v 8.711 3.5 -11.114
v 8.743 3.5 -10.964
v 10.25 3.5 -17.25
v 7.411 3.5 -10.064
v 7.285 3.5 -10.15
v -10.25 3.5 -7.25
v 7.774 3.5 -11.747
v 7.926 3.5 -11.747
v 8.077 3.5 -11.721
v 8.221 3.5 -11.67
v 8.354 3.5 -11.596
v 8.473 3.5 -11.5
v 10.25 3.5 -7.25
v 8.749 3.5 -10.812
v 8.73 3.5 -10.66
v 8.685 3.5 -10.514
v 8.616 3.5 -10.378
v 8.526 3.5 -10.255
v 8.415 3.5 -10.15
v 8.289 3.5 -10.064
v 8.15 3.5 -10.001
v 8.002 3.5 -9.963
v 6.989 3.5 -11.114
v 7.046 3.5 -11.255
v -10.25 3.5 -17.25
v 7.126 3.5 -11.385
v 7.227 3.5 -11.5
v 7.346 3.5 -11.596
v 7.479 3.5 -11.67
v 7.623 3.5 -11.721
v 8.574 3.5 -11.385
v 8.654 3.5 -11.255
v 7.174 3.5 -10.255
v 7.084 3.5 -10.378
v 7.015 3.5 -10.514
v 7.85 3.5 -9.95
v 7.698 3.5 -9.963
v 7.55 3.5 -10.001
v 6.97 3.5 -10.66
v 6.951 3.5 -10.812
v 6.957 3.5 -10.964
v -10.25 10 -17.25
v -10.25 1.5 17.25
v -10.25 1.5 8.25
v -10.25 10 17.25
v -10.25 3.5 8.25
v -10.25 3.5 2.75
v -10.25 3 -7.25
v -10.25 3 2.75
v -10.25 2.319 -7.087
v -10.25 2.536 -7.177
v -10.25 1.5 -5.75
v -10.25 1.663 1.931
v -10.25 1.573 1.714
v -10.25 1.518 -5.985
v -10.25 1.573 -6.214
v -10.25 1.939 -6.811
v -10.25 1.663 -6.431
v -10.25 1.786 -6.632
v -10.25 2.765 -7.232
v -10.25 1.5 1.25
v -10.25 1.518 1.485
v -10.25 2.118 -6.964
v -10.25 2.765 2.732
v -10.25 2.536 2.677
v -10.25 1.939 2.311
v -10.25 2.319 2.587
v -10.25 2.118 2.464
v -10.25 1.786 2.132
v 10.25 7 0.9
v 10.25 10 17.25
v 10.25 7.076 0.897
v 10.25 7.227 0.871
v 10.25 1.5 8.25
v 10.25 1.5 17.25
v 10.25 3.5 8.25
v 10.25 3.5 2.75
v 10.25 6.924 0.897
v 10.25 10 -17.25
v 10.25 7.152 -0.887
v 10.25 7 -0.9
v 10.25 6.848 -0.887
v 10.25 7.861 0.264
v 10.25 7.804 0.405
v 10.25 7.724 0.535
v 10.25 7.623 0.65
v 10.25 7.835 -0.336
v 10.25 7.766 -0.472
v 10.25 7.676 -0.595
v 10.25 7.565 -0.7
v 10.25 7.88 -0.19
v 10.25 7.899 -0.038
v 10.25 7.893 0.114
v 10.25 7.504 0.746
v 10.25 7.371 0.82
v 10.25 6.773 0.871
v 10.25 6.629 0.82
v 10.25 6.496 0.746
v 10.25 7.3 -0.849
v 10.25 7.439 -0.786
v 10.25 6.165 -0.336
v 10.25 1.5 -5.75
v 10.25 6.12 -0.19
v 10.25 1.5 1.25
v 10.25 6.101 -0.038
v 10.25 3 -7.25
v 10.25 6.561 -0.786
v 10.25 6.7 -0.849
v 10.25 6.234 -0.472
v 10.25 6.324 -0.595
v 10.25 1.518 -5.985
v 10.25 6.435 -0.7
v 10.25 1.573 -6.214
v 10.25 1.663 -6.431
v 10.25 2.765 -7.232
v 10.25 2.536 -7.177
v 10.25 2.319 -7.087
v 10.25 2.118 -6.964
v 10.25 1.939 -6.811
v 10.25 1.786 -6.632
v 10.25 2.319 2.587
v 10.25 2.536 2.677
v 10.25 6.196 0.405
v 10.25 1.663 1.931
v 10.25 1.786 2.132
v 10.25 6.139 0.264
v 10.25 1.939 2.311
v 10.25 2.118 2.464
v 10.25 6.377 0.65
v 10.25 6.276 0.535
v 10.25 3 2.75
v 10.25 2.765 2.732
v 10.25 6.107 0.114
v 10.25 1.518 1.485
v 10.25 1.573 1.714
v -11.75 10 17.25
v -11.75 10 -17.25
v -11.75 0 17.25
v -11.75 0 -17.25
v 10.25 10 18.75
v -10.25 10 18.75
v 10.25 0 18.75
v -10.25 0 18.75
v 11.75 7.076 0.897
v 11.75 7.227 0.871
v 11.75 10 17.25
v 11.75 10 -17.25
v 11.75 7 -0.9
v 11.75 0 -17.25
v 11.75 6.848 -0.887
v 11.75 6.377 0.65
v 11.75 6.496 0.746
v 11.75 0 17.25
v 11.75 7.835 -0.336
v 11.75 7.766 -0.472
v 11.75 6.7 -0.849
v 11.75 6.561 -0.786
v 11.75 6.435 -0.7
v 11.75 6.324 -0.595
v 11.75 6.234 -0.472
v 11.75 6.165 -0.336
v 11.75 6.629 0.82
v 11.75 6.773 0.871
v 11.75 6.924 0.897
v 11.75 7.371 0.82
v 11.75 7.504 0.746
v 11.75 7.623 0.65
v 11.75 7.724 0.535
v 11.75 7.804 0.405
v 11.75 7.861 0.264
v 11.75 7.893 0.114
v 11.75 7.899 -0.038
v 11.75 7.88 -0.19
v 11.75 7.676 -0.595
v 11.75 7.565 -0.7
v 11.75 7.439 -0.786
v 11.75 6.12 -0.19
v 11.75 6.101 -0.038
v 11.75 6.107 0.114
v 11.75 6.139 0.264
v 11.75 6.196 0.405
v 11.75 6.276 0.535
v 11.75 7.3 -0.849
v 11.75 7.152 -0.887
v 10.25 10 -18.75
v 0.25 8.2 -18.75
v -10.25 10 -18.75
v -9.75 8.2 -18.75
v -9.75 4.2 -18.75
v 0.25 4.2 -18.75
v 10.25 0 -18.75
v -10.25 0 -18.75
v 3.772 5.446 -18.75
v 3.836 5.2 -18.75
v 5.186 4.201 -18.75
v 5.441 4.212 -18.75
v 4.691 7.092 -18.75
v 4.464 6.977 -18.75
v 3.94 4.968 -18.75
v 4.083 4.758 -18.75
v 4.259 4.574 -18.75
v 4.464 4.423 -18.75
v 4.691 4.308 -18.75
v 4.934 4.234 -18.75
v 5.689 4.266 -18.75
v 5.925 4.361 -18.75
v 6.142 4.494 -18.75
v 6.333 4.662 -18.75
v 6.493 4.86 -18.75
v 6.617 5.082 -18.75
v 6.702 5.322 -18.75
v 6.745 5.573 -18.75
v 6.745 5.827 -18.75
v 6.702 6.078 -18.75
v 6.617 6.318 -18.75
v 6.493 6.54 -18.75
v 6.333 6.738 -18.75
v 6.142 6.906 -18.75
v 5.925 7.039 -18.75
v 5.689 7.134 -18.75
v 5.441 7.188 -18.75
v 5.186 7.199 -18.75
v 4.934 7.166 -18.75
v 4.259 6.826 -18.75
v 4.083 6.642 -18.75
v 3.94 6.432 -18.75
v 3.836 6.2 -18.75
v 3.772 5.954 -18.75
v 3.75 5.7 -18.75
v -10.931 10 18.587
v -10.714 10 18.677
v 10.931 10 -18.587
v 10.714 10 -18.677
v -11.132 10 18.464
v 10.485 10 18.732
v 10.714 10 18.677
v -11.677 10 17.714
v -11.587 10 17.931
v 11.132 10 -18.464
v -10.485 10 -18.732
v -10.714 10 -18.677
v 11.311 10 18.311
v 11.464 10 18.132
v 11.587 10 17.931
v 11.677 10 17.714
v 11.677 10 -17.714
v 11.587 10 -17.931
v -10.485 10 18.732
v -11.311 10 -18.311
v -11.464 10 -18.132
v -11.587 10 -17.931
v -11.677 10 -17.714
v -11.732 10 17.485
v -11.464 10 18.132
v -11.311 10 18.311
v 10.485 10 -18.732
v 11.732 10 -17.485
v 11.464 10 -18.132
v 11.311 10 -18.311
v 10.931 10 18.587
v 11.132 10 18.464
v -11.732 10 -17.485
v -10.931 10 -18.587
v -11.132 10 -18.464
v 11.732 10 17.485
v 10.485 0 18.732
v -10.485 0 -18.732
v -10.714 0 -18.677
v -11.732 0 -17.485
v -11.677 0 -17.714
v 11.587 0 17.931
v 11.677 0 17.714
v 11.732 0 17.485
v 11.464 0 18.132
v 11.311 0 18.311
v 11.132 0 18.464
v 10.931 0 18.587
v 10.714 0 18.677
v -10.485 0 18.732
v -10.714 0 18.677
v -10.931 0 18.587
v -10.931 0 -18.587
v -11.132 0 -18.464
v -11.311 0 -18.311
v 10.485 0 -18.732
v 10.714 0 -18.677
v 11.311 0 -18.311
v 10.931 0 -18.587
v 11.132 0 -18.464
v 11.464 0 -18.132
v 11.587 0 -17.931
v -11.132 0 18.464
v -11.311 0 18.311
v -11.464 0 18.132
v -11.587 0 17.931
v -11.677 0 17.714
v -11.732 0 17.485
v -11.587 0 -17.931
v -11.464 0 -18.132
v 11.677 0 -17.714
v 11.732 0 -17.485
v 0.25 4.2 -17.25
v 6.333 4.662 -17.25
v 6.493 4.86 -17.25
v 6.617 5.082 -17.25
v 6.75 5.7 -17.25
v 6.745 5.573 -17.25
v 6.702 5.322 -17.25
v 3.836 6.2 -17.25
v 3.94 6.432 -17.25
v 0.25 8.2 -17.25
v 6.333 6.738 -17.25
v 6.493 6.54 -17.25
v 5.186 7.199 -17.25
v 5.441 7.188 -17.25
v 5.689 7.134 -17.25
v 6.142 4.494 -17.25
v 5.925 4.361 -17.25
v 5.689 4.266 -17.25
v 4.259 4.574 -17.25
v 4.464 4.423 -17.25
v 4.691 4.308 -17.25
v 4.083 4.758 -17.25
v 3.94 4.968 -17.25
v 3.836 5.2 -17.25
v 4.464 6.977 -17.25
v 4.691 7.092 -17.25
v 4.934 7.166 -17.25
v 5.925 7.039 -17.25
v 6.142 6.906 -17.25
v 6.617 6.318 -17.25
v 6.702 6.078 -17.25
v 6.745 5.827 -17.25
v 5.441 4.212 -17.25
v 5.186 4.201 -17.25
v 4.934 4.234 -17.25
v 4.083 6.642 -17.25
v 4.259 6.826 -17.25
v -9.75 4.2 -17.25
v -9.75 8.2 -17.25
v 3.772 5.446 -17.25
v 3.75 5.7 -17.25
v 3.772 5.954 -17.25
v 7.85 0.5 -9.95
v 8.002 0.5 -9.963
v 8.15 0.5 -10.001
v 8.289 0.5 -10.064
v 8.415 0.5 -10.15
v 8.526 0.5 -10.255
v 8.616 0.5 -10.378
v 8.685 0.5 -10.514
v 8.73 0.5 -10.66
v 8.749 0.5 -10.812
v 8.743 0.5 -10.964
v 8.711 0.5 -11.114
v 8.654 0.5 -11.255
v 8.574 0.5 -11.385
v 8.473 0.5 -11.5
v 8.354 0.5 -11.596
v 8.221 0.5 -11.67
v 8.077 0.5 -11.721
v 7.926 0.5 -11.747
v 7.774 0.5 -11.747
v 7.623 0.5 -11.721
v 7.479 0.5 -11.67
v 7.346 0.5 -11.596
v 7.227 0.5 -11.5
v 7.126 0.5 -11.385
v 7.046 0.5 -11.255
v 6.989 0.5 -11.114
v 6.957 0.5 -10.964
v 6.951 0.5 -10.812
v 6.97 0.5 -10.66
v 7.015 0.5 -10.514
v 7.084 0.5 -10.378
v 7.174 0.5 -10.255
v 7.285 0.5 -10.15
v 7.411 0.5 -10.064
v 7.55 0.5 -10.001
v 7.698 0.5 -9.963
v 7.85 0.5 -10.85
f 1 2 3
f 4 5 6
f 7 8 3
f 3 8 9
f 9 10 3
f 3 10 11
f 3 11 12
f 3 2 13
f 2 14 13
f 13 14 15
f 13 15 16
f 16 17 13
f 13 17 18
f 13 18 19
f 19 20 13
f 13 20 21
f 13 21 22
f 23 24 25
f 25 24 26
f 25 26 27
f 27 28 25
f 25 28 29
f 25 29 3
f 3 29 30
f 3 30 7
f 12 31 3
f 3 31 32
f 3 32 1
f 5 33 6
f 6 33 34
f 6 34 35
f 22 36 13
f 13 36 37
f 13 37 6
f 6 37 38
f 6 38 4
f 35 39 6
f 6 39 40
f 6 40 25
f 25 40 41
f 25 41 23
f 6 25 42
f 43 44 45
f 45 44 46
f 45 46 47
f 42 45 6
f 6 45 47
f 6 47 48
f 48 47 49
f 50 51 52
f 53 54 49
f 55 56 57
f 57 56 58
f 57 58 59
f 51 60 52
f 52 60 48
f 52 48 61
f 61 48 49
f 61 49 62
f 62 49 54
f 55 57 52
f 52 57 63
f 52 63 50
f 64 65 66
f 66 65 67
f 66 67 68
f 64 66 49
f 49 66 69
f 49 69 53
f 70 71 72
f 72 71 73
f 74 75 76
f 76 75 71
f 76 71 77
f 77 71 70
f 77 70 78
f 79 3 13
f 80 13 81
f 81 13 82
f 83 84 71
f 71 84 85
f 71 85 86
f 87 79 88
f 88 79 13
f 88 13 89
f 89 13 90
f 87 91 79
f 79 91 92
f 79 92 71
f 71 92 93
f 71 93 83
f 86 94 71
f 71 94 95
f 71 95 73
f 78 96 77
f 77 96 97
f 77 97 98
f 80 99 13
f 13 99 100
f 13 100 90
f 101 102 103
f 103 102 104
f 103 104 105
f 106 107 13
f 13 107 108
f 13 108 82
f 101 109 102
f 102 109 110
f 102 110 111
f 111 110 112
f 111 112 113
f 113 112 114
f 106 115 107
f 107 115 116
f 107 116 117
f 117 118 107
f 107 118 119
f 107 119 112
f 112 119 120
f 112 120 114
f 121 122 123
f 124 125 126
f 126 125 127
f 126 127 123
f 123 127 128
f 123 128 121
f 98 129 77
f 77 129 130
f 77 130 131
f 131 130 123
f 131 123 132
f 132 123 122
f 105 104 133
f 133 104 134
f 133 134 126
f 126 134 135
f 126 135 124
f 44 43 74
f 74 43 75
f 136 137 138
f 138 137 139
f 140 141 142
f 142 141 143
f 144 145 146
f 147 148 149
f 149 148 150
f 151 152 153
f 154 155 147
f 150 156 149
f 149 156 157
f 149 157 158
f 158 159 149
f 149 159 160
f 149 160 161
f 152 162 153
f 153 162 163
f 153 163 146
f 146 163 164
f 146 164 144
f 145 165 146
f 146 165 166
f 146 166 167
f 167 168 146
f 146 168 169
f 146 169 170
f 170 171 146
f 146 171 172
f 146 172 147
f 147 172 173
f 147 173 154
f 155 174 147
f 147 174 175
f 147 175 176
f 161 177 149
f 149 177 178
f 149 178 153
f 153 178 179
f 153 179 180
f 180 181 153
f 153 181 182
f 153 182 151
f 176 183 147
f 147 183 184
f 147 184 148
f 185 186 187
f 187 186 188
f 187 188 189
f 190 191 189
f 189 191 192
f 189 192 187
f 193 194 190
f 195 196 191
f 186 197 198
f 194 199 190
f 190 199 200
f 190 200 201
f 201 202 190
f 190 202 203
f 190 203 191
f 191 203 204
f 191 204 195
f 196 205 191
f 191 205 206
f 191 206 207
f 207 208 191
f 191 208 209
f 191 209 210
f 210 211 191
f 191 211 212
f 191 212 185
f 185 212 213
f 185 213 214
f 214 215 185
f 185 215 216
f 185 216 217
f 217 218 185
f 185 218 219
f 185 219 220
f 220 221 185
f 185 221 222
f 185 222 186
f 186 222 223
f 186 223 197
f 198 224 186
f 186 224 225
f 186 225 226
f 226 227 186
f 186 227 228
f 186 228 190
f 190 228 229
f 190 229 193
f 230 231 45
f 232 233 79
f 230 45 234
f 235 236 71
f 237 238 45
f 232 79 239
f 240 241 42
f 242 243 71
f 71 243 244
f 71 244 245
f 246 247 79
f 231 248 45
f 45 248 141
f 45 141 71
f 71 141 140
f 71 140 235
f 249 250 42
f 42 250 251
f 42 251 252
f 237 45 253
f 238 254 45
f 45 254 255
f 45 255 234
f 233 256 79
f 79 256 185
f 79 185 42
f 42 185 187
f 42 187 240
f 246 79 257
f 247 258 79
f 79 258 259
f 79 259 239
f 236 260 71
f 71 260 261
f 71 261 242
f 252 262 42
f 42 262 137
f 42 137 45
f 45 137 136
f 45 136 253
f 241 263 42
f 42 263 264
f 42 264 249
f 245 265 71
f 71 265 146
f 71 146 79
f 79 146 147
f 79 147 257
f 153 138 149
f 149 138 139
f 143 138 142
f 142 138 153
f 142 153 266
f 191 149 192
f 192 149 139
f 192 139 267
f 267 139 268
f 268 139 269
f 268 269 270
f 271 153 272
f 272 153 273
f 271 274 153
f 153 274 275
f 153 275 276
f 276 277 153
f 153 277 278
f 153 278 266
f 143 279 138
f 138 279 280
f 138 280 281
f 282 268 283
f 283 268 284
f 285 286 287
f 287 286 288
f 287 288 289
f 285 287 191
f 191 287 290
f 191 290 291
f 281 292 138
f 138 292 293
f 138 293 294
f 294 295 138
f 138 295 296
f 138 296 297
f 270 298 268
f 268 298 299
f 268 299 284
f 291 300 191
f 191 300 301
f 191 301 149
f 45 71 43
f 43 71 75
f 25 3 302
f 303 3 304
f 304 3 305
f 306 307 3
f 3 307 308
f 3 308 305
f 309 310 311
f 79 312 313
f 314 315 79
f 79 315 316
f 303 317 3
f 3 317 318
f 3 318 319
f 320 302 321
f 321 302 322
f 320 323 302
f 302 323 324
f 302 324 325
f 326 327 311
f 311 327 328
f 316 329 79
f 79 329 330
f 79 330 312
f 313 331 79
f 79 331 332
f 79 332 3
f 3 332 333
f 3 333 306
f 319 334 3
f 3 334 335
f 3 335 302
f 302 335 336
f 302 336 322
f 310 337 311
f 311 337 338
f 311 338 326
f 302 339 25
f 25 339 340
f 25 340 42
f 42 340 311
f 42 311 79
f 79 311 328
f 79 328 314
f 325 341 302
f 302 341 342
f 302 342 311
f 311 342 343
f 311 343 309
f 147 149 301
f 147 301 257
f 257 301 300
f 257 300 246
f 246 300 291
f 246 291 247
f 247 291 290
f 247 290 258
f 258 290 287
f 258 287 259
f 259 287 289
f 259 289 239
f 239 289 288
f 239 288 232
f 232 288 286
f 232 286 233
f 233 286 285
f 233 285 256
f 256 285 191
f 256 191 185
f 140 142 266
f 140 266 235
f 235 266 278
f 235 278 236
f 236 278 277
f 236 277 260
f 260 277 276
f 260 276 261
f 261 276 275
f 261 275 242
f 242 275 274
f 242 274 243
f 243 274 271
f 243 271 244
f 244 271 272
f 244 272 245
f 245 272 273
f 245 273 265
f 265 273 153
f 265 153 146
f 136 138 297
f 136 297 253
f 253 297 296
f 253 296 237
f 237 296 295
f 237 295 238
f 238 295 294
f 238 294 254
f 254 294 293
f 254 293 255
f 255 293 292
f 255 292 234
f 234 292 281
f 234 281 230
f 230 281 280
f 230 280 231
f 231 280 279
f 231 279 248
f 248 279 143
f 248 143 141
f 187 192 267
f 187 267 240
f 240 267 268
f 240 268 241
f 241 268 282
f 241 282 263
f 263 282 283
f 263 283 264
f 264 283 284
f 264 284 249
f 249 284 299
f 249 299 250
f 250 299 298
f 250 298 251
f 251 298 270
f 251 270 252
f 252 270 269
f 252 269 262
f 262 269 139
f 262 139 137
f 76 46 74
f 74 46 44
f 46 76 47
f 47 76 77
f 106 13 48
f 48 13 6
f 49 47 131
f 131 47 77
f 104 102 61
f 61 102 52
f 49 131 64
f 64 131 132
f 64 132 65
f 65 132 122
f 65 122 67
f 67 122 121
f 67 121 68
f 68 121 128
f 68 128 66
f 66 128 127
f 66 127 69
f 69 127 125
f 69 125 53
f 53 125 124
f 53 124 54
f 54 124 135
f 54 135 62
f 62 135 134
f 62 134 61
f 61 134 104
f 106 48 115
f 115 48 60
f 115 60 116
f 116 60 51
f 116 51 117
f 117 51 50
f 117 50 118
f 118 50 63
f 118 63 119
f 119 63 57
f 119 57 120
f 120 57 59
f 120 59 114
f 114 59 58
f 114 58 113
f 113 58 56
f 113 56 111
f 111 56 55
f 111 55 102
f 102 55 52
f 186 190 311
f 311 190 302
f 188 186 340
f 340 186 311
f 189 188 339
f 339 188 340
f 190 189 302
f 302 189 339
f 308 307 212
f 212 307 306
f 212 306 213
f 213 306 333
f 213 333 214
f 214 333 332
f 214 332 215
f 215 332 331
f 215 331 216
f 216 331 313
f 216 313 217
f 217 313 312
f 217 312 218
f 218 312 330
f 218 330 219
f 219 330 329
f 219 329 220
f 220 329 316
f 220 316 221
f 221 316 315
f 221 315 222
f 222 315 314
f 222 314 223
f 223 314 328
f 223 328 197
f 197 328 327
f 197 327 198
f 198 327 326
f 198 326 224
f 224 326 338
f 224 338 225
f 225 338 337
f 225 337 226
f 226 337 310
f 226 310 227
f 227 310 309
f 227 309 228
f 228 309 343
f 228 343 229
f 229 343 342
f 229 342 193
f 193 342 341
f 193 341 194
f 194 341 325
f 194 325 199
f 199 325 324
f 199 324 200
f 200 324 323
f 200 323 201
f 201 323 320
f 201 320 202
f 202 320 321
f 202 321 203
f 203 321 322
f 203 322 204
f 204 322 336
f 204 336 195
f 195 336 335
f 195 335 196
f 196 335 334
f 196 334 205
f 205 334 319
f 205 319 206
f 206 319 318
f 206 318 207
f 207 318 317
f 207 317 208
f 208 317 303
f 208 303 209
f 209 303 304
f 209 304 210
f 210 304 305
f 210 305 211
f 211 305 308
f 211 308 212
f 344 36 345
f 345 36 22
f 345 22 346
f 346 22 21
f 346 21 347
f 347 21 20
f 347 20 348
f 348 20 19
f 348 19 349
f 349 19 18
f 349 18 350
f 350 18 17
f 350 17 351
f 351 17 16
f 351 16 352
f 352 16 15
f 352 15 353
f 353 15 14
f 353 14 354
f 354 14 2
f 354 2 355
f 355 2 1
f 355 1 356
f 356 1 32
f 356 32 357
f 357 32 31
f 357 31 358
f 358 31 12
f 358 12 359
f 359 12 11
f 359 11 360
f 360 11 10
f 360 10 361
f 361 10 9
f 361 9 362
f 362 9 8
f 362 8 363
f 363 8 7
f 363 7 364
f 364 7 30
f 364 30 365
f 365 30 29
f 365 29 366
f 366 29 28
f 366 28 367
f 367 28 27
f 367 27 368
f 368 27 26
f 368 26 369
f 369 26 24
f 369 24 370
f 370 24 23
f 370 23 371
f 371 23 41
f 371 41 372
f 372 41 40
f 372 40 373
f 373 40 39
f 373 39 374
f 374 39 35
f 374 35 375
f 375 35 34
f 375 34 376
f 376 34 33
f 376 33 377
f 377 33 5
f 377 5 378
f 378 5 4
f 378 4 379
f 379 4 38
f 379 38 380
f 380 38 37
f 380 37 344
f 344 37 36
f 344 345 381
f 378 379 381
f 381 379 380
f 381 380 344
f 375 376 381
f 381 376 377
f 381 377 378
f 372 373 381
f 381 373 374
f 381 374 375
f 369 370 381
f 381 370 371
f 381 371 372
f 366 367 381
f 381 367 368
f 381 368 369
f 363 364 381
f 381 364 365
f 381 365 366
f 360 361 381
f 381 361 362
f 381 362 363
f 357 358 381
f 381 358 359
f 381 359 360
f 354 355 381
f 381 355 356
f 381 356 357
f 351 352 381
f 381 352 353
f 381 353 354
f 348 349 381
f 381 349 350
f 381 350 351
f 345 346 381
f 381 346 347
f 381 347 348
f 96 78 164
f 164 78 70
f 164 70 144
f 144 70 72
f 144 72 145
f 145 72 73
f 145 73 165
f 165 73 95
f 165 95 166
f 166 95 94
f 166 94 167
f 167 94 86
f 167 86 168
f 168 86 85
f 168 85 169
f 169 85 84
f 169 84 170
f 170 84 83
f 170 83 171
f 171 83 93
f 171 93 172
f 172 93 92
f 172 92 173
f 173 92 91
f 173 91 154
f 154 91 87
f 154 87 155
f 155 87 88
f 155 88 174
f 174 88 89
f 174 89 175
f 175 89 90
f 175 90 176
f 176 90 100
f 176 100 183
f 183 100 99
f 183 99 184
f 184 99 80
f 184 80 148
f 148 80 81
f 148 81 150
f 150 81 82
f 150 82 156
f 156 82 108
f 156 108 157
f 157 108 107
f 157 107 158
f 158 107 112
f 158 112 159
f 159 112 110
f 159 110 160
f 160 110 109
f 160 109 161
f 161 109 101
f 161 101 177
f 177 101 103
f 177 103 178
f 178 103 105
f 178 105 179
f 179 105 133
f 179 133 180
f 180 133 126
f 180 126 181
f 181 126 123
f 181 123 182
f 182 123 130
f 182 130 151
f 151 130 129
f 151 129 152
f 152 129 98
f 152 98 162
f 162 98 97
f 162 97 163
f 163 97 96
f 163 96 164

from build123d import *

# Parameters (mm, degrees)
SKETCH_2_W          = 23.5
SKETCH_2_H          = 37.5
EXTRUDE_1_DEPTH     = 10
SHELL_1_T           = -1.5
FILLET_1_R          = 1.5
SKETCH_3_W          = 20.5
SKETCH_3_H          = 25.5
EXTRUDE_2_DEPTH     = 2
SKETCH_4_W          = 20.5
SKETCH_4_H          = 10
CUT_EXTRUDE_1_DEPTH = 2
FILLET_2_R          = 1.5
SKETCH_6_W          = 10
SKETCH_6_H          = 4
CUT_EXTRUDE_2_DEPTH = 2
SKETCH_7_R          = 1.5
CUT_EXTRUDE_3_DEPTH = 2
SKETCH_8_R          = 0.9
CUT_EXTRUDE_4_DEPTH = 3
SKETCH_9_R          = 0.9
CUT_EXTRUDE_5_DEPTH = 3


with BuildPart() as part:
    # 草图2 → 凸台-拉伸1 (new body)
    with BuildSketch(Plane(origin=(0, 0, 0), x_dir=(1, 0, 0), z_dir=(0, 1, 0))):
        Rectangle(SKETCH_2_W, SKETCH_2_H)
    extrude(amount=EXTRUDE_1_DEPTH)

    # 抽壳1
    shell_1_openings = [part.faces().sort_by_distance(p)[0] for p in [
        (0, 10, 0),
    ]]
    offset(amount=SHELL_1_T, openings=shell_1_openings, kind=Kind.INTERSECTION)

    # 圆角1
    fillet_1_edges = [part.edges().sort_by_distance(p)[0] for p in [
        (-11.75, 5, -18.75),
        (11.75, 5, -18.75),
        (11.75, 5, 18.75),
        (-11.75, 5, 18.75),
    ]]
    fillet(fillet_1_edges, radius=FILLET_1_R)

    # 草图3 → 凸台-拉伸2 (add)
    with BuildSketch(Plane(origin=(0, 1.5, 0), x_dir=(1, 0, 0), z_dir=(0, 1, 0))):
        with Locations((0, 4.5)):
            Rectangle(SKETCH_3_W, SKETCH_3_H)
    extrude(amount=EXTRUDE_2_DEPTH)

    # 草图4 → 切除-拉伸1 (cut)
    with BuildSketch(Plane(origin=(0, 3.5, 0), x_dir=(1, 0, 0), z_dir=(0, 1, 0))):
        with Locations((0, 2.25)):
            Rectangle(SKETCH_4_W, SKETCH_4_H)
    extrude(amount=-CUT_EXTRUDE_1_DEPTH, mode=Mode.SUBTRACT)

    # 圆角2
    fillet_2_edges = [part.edges().sort_by_distance(p)[0] for p in [
        (0, 1.5, -7.25),
        (0, 1.5, 2.75),
    ]]
    fillet(fillet_2_edges, radius=FILLET_2_R)

    # 草图6 → 切除-拉伸2 (cut)
    with BuildSketch(Plane(origin=(0, 0, -18.75), x_dir=(-1, 0, 0), z_dir=(0, 0, -1))):
        with Locations((4.75, 6.2)):
            Rectangle(SKETCH_6_W, SKETCH_6_H)
    extrude(amount=-CUT_EXTRUDE_2_DEPTH, mode=Mode.SUBTRACT)

    # 草图7 → 切除-拉伸3 (cut)
    with BuildSketch(Plane(origin=(0, 0, -18.75), x_dir=(-1, 0, 0), z_dir=(0, 0, -1))):
        with Locations((-5.25, 5.7)):
            Circle(SKETCH_7_R)
    extrude(amount=-CUT_EXTRUDE_3_DEPTH, mode=Mode.SUBTRACT)

    # 草图8 → 切除-拉伸4 (cut)
    with BuildSketch(Plane(origin=(0, 3.5, 0), x_dir=(1, 0, 0), z_dir=(0, 1, 0))):
        with Locations(Location((7.85, 10.85, 0), (0, 0, 270))):
            Circle(SKETCH_8_R)
    extrude(amount=-CUT_EXTRUDE_4_DEPTH, mode=Mode.SUBTRACT)

    # 草图9 → 切除-拉伸5 (cut)
    with BuildSketch(Plane(origin=(11.75, 0, 0), x_dir=(0, 0, -1), z_dir=(1, 0, 0))):
        with Locations((0, 7)):
            Circle(SKETCH_9_R)
    extrude(amount=-CUT_EXTRUDE_5_DEPTH, mode=Mode.SUBTRACT)


solid = part.part
